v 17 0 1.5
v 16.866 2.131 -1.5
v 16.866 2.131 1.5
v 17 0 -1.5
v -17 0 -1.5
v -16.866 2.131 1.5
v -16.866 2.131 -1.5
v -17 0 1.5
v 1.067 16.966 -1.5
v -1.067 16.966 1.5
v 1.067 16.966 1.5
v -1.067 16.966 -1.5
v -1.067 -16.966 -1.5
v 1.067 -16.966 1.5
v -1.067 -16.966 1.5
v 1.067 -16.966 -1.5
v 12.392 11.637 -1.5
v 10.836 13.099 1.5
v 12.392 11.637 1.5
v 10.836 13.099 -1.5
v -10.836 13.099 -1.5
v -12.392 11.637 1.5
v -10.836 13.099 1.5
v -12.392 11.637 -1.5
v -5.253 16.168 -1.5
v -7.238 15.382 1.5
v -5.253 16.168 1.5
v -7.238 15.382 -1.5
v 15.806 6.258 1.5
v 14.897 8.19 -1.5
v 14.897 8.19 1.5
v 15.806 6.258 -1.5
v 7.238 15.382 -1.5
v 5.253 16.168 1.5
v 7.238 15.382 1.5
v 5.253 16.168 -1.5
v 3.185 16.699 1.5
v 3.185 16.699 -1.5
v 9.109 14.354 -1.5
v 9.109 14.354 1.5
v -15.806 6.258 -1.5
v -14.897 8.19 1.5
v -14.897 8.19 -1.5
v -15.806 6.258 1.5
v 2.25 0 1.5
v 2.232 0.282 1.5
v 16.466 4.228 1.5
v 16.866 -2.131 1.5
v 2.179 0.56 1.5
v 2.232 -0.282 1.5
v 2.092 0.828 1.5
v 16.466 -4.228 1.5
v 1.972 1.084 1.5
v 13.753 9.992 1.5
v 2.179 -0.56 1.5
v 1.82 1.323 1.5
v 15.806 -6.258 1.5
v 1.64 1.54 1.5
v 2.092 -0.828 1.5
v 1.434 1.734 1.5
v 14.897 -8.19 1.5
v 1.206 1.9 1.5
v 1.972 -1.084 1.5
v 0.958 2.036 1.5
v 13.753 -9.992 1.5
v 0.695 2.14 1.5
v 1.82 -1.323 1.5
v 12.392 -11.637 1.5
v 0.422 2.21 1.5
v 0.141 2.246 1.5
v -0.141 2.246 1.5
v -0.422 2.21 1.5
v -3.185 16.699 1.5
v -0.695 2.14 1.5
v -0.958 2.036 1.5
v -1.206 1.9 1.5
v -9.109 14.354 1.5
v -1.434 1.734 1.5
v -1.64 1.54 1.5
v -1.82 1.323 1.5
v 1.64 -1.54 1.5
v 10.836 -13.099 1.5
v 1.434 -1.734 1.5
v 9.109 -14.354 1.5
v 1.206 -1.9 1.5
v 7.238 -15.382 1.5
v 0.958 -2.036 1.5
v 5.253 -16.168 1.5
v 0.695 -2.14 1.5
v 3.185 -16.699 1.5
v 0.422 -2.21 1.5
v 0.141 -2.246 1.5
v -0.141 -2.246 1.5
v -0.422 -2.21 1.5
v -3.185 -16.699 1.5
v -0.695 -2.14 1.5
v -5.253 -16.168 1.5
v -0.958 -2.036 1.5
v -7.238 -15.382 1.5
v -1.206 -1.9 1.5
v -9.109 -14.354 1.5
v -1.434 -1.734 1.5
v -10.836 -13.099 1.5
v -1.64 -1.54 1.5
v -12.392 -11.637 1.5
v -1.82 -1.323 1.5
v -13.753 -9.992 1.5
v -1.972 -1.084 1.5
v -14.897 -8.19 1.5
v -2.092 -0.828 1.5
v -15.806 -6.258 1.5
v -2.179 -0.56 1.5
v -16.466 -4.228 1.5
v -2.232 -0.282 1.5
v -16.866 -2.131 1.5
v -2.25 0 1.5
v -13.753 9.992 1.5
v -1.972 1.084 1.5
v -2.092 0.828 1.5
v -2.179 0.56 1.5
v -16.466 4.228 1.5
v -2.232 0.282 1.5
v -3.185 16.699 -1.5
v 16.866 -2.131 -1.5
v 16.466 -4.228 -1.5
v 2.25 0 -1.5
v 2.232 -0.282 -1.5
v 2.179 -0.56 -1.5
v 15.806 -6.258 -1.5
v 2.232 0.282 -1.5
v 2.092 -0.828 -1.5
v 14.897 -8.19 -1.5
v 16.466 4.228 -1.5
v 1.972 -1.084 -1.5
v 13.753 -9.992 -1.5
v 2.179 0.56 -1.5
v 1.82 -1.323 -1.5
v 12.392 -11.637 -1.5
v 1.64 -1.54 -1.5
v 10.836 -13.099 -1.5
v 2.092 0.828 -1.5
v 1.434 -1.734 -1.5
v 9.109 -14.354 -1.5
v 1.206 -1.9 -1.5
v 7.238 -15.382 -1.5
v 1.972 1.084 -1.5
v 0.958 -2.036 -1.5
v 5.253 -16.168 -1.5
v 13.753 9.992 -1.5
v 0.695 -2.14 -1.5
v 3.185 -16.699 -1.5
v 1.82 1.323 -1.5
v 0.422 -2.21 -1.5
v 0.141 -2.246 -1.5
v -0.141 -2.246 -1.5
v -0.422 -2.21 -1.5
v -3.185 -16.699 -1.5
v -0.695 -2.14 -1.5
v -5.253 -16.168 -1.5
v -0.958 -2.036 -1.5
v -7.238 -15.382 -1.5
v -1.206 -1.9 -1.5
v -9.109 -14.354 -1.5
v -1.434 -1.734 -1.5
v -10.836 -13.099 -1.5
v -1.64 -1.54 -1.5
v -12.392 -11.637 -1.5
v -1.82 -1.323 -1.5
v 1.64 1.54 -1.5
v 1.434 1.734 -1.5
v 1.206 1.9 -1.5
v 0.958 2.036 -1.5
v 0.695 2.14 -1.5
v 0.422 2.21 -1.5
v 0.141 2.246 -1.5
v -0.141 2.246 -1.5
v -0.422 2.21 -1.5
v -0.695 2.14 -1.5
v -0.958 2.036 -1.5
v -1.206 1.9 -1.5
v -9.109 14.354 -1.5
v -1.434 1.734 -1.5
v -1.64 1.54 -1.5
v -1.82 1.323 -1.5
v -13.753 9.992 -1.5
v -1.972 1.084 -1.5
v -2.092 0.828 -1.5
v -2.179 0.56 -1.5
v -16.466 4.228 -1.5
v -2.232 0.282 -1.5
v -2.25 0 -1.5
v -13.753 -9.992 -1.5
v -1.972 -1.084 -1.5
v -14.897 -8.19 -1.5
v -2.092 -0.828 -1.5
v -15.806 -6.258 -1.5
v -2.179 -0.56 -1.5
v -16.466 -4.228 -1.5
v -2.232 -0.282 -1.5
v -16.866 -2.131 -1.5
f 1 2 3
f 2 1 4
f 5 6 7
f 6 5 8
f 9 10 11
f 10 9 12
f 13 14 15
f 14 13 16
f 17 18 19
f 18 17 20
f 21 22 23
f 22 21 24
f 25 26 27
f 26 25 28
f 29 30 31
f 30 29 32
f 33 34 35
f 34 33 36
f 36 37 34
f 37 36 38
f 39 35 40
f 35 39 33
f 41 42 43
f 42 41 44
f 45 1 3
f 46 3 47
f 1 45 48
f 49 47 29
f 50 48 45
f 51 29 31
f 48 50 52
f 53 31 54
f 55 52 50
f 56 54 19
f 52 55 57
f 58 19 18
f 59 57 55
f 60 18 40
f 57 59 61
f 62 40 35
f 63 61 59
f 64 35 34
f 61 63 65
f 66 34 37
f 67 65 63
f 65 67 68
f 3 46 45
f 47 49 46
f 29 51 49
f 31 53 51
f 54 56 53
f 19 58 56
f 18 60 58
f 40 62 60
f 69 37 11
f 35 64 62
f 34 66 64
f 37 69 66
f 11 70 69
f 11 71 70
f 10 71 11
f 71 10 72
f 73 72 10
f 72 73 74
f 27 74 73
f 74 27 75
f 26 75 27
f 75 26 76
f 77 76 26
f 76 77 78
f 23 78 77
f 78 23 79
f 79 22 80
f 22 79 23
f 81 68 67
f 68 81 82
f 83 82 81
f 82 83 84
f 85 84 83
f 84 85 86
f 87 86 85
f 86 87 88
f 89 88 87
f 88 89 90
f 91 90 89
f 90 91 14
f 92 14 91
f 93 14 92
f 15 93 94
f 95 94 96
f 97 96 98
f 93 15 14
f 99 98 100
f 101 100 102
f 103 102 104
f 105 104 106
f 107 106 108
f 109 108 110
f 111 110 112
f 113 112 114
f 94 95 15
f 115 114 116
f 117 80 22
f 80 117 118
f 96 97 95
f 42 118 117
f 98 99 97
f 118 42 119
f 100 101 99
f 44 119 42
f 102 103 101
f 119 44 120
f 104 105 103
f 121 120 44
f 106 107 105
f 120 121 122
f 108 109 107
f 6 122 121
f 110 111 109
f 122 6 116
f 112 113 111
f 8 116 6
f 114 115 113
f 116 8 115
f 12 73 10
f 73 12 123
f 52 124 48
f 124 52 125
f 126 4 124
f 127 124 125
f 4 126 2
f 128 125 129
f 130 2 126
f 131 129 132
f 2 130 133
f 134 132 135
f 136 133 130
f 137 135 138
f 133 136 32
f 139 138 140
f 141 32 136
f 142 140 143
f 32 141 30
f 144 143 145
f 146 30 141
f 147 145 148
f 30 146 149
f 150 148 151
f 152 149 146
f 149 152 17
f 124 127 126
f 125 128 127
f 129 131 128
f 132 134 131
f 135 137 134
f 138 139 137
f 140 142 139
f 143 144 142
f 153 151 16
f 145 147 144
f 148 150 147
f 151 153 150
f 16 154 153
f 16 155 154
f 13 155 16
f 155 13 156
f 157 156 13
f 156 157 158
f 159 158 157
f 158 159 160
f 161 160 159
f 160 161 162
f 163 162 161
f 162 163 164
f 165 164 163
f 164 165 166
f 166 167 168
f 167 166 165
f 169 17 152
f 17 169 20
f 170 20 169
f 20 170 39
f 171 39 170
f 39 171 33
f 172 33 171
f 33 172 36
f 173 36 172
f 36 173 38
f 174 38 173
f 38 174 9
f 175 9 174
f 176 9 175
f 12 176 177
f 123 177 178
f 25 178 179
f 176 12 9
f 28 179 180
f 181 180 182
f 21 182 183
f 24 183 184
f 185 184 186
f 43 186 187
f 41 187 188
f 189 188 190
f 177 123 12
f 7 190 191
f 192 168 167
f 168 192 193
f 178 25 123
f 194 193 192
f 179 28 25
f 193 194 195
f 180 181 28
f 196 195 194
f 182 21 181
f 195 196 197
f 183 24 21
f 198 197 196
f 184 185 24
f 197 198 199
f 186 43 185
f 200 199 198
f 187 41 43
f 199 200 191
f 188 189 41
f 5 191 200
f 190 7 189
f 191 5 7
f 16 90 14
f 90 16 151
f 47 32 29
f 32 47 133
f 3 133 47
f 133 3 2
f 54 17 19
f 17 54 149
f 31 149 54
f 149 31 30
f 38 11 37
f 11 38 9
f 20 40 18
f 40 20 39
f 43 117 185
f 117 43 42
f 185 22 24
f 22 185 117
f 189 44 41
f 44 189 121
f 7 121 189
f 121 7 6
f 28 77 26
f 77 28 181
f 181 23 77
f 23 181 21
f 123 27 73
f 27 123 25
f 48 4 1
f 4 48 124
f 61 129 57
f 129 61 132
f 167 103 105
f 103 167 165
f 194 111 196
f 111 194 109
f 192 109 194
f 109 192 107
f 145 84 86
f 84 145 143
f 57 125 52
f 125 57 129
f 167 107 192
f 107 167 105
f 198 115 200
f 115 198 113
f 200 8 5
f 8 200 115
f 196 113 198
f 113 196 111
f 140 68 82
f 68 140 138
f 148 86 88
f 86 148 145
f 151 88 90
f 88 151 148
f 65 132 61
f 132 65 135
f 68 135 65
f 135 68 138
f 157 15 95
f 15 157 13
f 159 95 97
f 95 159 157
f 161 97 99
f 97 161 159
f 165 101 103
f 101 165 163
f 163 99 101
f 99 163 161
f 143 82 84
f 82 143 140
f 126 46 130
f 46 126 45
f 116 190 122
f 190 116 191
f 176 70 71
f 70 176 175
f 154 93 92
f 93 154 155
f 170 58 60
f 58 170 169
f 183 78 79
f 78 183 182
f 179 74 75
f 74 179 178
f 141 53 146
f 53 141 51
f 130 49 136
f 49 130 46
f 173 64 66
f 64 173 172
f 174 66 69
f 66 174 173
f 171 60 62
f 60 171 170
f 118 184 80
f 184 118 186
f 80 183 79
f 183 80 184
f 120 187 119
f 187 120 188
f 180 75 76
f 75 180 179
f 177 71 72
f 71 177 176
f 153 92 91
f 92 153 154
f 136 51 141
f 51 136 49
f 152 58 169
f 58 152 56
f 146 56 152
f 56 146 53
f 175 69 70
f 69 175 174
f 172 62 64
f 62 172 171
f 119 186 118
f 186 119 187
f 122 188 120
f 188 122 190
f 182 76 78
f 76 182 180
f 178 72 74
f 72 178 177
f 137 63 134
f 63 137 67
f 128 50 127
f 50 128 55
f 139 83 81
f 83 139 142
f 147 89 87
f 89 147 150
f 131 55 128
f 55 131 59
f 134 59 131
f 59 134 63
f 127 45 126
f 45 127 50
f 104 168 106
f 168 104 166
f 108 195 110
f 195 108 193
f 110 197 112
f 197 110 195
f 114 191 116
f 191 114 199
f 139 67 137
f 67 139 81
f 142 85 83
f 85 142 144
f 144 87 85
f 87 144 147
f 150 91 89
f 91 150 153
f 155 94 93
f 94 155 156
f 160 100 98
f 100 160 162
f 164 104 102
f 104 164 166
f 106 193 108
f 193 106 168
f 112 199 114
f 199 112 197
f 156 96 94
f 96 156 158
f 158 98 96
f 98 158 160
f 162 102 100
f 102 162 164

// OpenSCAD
$fn = 50;


difference() {
	union() {
		translate(v = [0, 0, -1.5000000000]) {
			cylinder(h = 3, r = 17.0000000000);
		}
	}
	union() {
		translate(v = [0, 0, -100.0000000000]) {
			cylinder(h = 200, r = 2.2500000000);
		}
	}
}
